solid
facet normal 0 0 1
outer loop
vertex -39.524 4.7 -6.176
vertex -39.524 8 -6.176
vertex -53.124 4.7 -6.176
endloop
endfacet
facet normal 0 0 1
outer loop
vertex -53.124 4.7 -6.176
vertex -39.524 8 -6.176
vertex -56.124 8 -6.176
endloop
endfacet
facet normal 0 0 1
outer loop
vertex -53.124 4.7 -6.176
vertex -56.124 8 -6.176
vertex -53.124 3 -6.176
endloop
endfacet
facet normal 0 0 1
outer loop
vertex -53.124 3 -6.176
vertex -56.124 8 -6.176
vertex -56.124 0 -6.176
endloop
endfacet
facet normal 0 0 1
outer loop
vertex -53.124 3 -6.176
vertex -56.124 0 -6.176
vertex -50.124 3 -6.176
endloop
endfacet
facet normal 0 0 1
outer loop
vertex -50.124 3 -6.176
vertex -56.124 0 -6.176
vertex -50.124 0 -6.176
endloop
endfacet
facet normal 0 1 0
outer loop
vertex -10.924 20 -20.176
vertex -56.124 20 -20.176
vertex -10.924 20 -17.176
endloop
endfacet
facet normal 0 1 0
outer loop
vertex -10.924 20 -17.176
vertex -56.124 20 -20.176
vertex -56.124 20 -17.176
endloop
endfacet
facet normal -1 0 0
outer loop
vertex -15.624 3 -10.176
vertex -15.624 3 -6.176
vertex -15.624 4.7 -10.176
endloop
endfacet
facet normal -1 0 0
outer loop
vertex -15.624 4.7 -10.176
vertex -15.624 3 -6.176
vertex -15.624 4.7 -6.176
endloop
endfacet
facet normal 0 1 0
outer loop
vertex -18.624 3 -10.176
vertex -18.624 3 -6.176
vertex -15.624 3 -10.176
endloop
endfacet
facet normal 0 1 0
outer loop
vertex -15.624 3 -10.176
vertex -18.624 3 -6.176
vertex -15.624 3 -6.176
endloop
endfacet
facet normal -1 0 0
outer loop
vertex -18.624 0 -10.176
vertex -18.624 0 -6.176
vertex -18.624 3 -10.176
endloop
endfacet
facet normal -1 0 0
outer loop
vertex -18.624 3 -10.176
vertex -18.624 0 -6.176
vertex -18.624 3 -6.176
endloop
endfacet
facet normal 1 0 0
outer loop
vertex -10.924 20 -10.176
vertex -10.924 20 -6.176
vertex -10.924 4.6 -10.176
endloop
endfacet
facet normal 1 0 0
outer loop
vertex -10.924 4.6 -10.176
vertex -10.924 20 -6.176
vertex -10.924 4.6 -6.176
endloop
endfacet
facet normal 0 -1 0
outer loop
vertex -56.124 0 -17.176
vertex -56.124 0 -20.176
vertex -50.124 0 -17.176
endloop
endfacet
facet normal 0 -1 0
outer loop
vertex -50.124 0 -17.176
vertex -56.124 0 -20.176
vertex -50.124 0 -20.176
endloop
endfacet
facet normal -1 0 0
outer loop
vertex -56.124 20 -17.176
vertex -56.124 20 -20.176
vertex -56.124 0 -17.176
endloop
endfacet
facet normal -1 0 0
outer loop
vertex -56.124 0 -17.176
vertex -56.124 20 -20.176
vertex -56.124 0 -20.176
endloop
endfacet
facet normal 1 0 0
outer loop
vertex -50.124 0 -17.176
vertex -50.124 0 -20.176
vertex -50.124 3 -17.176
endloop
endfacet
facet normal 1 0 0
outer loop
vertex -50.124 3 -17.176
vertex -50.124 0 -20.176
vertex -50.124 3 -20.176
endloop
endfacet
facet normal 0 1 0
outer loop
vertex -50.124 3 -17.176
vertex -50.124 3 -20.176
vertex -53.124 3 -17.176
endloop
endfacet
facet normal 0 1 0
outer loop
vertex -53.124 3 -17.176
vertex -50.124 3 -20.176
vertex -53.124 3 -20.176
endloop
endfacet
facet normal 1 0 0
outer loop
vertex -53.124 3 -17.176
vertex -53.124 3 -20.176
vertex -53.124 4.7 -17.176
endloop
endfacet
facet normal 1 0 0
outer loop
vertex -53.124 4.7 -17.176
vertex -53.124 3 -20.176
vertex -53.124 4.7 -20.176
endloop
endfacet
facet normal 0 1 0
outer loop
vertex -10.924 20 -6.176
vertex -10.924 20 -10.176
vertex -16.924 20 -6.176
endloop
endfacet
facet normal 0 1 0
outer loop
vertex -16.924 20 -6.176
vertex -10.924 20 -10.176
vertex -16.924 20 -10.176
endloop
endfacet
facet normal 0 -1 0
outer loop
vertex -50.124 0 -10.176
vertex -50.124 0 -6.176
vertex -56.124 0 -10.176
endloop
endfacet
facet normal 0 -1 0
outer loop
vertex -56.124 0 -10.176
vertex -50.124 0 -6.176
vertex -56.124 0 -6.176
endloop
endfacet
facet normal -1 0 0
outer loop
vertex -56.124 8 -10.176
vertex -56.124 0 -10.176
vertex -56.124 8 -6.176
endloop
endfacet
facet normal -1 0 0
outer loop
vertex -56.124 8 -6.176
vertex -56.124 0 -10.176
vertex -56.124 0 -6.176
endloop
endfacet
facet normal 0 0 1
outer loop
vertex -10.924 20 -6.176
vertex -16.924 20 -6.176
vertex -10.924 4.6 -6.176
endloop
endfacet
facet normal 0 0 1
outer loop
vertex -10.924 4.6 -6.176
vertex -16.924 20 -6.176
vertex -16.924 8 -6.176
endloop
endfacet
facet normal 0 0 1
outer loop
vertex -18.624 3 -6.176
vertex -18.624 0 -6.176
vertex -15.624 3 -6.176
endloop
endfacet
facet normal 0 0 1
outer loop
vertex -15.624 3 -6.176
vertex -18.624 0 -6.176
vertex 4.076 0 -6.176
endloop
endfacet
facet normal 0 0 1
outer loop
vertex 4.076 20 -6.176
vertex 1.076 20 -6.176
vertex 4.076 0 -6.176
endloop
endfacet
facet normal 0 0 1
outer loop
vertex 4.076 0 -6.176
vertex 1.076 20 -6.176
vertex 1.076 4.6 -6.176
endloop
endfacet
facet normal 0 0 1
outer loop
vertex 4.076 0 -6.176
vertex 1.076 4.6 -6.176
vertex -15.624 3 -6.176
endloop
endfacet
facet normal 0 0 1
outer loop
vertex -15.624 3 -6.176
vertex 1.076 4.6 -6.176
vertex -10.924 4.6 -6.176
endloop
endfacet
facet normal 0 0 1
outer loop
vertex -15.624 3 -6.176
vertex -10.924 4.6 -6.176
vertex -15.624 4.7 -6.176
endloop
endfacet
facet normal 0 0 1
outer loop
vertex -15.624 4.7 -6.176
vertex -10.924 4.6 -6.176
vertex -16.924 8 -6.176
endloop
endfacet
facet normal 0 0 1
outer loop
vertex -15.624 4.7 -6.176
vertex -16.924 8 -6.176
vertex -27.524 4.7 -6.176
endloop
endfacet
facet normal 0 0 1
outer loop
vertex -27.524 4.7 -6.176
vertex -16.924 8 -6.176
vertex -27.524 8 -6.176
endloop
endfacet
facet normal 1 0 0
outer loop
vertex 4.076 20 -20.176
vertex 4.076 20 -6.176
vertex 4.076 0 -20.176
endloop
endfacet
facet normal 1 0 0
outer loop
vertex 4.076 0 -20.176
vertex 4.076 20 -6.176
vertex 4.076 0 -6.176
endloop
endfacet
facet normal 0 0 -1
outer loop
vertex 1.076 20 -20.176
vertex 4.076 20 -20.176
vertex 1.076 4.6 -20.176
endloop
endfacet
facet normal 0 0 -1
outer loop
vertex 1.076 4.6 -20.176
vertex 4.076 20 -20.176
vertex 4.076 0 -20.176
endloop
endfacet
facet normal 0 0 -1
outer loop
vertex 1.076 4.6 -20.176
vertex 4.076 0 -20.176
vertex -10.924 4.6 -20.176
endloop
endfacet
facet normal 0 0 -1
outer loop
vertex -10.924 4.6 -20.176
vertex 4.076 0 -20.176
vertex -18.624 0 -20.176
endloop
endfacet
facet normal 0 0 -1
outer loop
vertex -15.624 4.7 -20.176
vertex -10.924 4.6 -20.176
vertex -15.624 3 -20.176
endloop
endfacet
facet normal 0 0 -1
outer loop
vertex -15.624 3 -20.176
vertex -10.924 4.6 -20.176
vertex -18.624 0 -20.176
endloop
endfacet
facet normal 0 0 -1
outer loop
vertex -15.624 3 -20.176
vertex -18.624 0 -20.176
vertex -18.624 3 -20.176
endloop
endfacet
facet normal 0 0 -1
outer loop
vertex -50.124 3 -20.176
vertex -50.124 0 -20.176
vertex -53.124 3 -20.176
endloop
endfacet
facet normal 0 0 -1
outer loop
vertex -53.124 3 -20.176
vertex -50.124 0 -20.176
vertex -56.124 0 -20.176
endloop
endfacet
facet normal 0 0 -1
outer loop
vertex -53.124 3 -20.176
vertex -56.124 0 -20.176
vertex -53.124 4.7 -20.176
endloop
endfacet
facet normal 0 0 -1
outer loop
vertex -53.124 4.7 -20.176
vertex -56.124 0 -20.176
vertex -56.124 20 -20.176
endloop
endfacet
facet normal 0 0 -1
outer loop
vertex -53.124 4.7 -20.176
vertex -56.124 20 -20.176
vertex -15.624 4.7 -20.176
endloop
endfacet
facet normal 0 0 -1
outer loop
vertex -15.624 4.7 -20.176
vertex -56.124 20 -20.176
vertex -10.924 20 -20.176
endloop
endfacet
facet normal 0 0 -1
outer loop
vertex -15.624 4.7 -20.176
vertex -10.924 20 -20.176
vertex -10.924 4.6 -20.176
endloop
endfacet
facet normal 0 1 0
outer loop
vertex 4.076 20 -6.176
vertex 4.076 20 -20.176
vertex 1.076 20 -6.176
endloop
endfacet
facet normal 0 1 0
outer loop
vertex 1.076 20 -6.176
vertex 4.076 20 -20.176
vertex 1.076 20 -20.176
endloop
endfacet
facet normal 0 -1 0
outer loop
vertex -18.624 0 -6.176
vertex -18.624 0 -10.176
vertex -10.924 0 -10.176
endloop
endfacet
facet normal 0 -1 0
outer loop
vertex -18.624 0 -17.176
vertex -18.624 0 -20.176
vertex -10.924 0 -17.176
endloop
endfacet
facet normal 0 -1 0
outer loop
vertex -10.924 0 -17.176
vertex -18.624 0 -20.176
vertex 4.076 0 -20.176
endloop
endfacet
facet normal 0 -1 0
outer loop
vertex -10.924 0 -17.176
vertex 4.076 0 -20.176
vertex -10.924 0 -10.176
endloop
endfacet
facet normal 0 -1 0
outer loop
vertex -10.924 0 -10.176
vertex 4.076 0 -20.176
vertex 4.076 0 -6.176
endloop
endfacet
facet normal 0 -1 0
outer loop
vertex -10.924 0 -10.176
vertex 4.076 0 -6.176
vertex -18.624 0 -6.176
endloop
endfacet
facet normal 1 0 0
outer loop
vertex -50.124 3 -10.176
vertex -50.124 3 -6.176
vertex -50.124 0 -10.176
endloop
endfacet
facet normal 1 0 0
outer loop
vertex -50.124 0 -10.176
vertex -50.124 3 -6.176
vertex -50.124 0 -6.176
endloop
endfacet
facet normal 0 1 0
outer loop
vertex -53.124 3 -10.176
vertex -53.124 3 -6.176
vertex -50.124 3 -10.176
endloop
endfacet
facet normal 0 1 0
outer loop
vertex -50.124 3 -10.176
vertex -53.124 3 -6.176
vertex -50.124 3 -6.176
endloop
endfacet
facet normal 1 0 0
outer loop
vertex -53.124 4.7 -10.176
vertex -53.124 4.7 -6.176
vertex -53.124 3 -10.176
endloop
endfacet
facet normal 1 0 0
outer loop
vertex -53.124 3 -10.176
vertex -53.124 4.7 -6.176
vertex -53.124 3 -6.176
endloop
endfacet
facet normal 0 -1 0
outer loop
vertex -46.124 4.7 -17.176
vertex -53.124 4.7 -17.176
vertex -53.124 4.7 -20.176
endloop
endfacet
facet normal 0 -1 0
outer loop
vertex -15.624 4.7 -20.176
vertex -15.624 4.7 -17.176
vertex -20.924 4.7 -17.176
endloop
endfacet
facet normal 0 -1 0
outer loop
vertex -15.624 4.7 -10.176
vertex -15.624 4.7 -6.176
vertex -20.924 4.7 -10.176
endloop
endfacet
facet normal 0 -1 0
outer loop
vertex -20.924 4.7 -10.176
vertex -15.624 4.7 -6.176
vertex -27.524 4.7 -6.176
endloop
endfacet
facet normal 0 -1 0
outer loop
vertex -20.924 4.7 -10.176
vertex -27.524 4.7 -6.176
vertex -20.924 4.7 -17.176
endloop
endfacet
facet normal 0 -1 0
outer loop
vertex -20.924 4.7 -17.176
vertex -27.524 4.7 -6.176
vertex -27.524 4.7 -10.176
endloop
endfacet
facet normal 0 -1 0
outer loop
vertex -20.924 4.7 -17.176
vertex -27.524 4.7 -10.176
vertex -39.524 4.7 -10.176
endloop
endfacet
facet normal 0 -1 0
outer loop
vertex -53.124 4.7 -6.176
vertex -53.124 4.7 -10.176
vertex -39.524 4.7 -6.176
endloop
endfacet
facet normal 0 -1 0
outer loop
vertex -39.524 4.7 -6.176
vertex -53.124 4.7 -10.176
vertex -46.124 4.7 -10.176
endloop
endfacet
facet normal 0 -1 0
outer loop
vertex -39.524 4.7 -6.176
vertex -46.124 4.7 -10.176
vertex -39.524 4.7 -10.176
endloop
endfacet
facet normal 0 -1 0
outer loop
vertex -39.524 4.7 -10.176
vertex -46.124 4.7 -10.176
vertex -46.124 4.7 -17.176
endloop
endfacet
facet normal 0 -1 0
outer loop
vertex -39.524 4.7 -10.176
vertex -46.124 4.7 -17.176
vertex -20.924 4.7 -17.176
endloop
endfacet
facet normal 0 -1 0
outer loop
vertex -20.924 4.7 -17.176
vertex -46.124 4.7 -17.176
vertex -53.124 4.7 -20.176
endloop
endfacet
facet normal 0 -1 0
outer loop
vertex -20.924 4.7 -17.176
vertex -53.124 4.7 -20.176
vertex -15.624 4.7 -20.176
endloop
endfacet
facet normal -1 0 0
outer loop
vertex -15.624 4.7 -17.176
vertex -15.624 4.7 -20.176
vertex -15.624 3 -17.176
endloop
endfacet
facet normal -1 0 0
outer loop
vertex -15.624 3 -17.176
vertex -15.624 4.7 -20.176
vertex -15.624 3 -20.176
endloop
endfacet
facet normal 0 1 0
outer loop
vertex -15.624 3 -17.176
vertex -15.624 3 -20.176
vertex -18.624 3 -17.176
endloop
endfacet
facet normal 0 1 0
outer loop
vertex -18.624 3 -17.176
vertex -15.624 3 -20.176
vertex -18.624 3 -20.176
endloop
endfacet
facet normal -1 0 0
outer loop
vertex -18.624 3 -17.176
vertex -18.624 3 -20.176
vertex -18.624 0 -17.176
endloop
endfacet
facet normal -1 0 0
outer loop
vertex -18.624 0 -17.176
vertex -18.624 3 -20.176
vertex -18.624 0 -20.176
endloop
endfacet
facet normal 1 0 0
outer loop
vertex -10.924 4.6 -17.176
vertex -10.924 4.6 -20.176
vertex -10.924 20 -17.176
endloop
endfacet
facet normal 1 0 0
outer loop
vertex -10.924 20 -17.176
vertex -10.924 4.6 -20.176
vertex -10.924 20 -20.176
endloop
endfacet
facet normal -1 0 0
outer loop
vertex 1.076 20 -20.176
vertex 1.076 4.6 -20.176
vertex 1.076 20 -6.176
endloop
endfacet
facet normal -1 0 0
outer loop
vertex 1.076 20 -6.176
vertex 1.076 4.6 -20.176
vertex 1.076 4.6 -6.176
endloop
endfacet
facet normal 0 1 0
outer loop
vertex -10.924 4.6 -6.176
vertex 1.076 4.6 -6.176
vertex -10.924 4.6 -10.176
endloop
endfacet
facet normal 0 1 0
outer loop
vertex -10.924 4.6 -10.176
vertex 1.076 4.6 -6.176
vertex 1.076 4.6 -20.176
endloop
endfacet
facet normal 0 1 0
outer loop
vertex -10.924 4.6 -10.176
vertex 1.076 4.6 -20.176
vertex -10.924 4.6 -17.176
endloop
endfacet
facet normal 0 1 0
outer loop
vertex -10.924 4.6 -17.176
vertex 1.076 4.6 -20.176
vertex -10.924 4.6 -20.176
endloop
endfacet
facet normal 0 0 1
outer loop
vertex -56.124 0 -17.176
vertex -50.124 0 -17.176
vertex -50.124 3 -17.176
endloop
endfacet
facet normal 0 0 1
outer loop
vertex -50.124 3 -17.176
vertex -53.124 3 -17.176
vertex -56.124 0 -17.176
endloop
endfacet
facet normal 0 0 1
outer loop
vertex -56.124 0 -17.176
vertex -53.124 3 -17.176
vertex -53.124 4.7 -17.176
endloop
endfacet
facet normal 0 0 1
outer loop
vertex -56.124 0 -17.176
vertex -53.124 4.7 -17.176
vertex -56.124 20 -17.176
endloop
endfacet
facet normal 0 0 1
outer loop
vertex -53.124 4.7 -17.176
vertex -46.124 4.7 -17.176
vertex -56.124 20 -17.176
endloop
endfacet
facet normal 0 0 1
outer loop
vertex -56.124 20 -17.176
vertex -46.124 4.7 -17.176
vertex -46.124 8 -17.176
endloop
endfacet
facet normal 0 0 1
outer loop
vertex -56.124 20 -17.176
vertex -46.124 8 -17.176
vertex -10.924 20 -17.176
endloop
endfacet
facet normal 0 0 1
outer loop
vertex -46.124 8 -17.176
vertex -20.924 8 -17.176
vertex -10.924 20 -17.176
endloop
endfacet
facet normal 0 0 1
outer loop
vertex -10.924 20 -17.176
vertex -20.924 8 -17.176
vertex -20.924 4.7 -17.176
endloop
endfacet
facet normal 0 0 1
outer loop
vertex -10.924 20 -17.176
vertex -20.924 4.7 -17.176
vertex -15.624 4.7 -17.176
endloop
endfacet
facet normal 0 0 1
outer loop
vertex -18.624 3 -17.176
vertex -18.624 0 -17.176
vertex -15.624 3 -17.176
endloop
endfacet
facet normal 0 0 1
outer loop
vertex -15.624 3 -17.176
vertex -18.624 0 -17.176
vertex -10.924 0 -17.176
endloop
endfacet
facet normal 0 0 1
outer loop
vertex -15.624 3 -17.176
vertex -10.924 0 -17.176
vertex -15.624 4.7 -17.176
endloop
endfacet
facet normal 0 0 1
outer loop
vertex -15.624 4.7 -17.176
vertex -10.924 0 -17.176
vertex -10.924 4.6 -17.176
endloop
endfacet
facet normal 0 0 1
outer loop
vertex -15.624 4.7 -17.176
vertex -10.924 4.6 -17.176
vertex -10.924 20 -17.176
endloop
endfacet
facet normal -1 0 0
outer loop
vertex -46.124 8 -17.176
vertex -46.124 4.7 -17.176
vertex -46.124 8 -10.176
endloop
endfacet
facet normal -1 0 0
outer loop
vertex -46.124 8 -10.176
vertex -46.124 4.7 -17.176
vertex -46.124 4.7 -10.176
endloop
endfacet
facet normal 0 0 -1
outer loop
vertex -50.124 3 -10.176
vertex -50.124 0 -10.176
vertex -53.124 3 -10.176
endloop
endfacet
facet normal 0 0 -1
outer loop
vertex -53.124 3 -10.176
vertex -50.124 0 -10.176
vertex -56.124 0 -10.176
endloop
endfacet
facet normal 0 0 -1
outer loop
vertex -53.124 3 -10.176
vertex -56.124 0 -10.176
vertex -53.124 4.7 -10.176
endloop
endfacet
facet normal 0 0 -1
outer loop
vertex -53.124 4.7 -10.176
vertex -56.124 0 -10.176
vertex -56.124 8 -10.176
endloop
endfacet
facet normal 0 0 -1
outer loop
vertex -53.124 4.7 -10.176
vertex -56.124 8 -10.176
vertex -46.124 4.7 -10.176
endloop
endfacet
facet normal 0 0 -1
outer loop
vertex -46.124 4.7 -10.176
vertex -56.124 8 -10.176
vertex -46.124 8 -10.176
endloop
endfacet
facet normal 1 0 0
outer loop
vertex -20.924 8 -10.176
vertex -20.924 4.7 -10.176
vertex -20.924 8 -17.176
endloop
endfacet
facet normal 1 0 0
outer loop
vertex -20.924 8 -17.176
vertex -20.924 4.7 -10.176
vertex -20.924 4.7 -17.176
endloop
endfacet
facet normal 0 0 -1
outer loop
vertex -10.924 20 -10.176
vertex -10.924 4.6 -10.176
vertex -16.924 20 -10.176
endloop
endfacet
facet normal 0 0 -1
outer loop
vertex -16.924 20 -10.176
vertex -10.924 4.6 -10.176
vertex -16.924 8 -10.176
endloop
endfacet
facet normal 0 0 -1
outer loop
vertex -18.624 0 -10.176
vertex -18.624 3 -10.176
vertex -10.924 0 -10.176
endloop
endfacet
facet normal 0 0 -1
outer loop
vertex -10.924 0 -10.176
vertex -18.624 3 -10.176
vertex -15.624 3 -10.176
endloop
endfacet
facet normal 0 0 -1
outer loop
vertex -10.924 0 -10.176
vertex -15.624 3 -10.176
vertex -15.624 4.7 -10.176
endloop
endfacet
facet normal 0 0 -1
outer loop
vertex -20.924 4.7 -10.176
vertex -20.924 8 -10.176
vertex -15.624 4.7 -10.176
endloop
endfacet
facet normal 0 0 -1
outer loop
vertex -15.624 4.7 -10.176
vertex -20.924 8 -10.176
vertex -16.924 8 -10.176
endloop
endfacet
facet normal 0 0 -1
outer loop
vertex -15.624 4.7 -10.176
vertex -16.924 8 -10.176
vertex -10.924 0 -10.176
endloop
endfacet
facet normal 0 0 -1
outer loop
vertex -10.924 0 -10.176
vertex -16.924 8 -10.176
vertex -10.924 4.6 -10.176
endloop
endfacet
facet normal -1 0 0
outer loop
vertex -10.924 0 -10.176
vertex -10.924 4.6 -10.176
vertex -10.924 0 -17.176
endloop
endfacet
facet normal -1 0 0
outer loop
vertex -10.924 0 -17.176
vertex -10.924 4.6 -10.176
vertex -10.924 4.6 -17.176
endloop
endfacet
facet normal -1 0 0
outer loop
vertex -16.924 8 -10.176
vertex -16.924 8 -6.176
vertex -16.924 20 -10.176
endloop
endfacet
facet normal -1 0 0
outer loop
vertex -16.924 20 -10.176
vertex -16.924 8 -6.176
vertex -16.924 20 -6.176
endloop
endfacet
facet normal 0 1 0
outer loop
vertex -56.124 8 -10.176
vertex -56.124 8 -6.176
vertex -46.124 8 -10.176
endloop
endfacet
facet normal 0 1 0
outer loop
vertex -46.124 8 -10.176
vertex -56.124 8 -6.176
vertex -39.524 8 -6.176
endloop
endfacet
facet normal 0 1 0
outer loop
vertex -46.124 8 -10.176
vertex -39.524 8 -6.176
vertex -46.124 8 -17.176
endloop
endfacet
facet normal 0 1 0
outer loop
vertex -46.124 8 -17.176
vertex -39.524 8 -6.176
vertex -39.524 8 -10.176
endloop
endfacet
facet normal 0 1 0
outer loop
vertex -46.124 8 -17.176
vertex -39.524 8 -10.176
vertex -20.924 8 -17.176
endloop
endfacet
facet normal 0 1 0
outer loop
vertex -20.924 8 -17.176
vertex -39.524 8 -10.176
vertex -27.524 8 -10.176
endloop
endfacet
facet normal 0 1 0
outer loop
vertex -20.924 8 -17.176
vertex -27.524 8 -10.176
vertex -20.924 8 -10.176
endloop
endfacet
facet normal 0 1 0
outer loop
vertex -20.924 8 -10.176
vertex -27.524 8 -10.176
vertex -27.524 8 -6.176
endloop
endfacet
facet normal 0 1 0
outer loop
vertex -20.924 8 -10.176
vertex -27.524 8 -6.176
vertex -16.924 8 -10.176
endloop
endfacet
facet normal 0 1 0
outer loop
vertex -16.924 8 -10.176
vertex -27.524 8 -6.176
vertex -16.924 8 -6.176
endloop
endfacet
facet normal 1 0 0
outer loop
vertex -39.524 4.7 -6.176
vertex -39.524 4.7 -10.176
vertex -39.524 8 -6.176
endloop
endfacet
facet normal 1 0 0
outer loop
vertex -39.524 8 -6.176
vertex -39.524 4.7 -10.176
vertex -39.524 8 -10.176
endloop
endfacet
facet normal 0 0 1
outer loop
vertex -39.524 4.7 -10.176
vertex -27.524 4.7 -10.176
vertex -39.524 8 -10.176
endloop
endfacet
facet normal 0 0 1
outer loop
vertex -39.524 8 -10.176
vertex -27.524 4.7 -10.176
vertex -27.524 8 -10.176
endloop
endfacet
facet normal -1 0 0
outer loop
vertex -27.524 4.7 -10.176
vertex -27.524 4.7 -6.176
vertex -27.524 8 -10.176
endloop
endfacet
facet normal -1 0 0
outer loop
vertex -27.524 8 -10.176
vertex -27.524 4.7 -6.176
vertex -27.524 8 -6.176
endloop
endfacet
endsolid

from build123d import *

# Parameters (mm, degrees)
CROQUIS1_W              = 60.2
CROQUIS1_H              = 14
SALIENTE_EXTRUIR1_DEPTH = 20
CROQUIS2_W              = 12
CROQUIS2_H              = 15.4
CORTAR_EXTRUIR1_DEPTH   = 14
CROQUIS3_W              = 10
CROQUIS3_H              = 7
CORTAR_EXTRUIR2_DEPTH   = 20
CORTAR_EXTRUIR3_DEPTH   = 12
CROQUIS5_W              = 12
CROQUIS5_H              = 4
CORTAR_EXTRUIR4_DEPTH   = 3.3


with BuildPart() as part:
    # Croquis1 → Saliente-Extruir1 (new body)
    with BuildSketch(Plane(origin=(0, 0, 0), x_dir=(1, 0, 0), z_dir=(0, 1, 0))):
        with Locations((-26.023666378, 13.176470588)):
            Rectangle(CROQUIS1_W, CROQUIS1_H)
    extrude(amount=SALIENTE_EXTRUIR1_DEPTH)

    # Croquis2 → Cortar-Extruir1 (cut)
    with BuildSketch(Plane.XY.offset(-6.176470588)):
        Polygon((-50.123666378, 0), (-18.623666378, 0), (-18.623666378, 3), (-15.623666378, 3), (-15.623666378, 4.7), (-20.023666378, 4.7), (-51.023666378, 4.7), (-53.123666378, 4.7), (-53.123666378, 3), (-50.123666378, 3), align=None)
        with Locations((-4.923666378, 12.3)):
            Rectangle(CROQUIS2_W, CROQUIS2_H)
    extrude(amount=-CORTAR_EXTRUIR1_DEPTH, mode=Mode.SUBTRACT)

    # Croquis3 → Cortar-Extruir2 (cut)
    with BuildSketch(Plane(origin=(0, 20, 0), x_dir=(1, 0, 0), z_dir=(0, 1, 0))):
        with Locations((-51.123666378, 13.676470588)):
            Rectangle(CROQUIS3_W, CROQUIS3_H)
        with Locations((-15.923666378, 13.676470588)):
            Rectangle(CROQUIS3_W, CROQUIS3_H)
    extrude(amount=-CORTAR_EXTRUIR2_DEPTH, mode=Mode.SUBTRACT)

    # Croquis4 → Cortar-Extruir3 (cut)
    with BuildSketch(Plane(origin=(0, 20, 0), x_dir=(1, 0, 0), z_dir=(0, 1, 0))):
        Polygon((-46.123666378, 17.176470588), (-20.923666378, 17.176470588), (-20.923666378, 10.176470588), (-16.923666378, 10.176470588), (-16.923666378, 6.176470588), (-56.123666378, 6.176470588), (-56.123666378, 10.176470588), (-46.123666378, 10.176470588), align=None)
    extrude(amount=-CORTAR_EXTRUIR3_DEPTH, mode=Mode.SUBTRACT)

    # Croquis5 → Cortar-Extruir4 (cut)
    with BuildSketch(Plane(origin=(0, 8, 0), x_dir=(1, 0, 0), z_dir=(0, 1, 0))):
        with Locations((-33.523666378, 8.176470588)):
            Rectangle(CROQUIS5_W, CROQUIS5_H)
    extrude(amount=-CORTAR_EXTRUIR4_DEPTH, mode=Mode.SUBTRACT)


solid = part.part
